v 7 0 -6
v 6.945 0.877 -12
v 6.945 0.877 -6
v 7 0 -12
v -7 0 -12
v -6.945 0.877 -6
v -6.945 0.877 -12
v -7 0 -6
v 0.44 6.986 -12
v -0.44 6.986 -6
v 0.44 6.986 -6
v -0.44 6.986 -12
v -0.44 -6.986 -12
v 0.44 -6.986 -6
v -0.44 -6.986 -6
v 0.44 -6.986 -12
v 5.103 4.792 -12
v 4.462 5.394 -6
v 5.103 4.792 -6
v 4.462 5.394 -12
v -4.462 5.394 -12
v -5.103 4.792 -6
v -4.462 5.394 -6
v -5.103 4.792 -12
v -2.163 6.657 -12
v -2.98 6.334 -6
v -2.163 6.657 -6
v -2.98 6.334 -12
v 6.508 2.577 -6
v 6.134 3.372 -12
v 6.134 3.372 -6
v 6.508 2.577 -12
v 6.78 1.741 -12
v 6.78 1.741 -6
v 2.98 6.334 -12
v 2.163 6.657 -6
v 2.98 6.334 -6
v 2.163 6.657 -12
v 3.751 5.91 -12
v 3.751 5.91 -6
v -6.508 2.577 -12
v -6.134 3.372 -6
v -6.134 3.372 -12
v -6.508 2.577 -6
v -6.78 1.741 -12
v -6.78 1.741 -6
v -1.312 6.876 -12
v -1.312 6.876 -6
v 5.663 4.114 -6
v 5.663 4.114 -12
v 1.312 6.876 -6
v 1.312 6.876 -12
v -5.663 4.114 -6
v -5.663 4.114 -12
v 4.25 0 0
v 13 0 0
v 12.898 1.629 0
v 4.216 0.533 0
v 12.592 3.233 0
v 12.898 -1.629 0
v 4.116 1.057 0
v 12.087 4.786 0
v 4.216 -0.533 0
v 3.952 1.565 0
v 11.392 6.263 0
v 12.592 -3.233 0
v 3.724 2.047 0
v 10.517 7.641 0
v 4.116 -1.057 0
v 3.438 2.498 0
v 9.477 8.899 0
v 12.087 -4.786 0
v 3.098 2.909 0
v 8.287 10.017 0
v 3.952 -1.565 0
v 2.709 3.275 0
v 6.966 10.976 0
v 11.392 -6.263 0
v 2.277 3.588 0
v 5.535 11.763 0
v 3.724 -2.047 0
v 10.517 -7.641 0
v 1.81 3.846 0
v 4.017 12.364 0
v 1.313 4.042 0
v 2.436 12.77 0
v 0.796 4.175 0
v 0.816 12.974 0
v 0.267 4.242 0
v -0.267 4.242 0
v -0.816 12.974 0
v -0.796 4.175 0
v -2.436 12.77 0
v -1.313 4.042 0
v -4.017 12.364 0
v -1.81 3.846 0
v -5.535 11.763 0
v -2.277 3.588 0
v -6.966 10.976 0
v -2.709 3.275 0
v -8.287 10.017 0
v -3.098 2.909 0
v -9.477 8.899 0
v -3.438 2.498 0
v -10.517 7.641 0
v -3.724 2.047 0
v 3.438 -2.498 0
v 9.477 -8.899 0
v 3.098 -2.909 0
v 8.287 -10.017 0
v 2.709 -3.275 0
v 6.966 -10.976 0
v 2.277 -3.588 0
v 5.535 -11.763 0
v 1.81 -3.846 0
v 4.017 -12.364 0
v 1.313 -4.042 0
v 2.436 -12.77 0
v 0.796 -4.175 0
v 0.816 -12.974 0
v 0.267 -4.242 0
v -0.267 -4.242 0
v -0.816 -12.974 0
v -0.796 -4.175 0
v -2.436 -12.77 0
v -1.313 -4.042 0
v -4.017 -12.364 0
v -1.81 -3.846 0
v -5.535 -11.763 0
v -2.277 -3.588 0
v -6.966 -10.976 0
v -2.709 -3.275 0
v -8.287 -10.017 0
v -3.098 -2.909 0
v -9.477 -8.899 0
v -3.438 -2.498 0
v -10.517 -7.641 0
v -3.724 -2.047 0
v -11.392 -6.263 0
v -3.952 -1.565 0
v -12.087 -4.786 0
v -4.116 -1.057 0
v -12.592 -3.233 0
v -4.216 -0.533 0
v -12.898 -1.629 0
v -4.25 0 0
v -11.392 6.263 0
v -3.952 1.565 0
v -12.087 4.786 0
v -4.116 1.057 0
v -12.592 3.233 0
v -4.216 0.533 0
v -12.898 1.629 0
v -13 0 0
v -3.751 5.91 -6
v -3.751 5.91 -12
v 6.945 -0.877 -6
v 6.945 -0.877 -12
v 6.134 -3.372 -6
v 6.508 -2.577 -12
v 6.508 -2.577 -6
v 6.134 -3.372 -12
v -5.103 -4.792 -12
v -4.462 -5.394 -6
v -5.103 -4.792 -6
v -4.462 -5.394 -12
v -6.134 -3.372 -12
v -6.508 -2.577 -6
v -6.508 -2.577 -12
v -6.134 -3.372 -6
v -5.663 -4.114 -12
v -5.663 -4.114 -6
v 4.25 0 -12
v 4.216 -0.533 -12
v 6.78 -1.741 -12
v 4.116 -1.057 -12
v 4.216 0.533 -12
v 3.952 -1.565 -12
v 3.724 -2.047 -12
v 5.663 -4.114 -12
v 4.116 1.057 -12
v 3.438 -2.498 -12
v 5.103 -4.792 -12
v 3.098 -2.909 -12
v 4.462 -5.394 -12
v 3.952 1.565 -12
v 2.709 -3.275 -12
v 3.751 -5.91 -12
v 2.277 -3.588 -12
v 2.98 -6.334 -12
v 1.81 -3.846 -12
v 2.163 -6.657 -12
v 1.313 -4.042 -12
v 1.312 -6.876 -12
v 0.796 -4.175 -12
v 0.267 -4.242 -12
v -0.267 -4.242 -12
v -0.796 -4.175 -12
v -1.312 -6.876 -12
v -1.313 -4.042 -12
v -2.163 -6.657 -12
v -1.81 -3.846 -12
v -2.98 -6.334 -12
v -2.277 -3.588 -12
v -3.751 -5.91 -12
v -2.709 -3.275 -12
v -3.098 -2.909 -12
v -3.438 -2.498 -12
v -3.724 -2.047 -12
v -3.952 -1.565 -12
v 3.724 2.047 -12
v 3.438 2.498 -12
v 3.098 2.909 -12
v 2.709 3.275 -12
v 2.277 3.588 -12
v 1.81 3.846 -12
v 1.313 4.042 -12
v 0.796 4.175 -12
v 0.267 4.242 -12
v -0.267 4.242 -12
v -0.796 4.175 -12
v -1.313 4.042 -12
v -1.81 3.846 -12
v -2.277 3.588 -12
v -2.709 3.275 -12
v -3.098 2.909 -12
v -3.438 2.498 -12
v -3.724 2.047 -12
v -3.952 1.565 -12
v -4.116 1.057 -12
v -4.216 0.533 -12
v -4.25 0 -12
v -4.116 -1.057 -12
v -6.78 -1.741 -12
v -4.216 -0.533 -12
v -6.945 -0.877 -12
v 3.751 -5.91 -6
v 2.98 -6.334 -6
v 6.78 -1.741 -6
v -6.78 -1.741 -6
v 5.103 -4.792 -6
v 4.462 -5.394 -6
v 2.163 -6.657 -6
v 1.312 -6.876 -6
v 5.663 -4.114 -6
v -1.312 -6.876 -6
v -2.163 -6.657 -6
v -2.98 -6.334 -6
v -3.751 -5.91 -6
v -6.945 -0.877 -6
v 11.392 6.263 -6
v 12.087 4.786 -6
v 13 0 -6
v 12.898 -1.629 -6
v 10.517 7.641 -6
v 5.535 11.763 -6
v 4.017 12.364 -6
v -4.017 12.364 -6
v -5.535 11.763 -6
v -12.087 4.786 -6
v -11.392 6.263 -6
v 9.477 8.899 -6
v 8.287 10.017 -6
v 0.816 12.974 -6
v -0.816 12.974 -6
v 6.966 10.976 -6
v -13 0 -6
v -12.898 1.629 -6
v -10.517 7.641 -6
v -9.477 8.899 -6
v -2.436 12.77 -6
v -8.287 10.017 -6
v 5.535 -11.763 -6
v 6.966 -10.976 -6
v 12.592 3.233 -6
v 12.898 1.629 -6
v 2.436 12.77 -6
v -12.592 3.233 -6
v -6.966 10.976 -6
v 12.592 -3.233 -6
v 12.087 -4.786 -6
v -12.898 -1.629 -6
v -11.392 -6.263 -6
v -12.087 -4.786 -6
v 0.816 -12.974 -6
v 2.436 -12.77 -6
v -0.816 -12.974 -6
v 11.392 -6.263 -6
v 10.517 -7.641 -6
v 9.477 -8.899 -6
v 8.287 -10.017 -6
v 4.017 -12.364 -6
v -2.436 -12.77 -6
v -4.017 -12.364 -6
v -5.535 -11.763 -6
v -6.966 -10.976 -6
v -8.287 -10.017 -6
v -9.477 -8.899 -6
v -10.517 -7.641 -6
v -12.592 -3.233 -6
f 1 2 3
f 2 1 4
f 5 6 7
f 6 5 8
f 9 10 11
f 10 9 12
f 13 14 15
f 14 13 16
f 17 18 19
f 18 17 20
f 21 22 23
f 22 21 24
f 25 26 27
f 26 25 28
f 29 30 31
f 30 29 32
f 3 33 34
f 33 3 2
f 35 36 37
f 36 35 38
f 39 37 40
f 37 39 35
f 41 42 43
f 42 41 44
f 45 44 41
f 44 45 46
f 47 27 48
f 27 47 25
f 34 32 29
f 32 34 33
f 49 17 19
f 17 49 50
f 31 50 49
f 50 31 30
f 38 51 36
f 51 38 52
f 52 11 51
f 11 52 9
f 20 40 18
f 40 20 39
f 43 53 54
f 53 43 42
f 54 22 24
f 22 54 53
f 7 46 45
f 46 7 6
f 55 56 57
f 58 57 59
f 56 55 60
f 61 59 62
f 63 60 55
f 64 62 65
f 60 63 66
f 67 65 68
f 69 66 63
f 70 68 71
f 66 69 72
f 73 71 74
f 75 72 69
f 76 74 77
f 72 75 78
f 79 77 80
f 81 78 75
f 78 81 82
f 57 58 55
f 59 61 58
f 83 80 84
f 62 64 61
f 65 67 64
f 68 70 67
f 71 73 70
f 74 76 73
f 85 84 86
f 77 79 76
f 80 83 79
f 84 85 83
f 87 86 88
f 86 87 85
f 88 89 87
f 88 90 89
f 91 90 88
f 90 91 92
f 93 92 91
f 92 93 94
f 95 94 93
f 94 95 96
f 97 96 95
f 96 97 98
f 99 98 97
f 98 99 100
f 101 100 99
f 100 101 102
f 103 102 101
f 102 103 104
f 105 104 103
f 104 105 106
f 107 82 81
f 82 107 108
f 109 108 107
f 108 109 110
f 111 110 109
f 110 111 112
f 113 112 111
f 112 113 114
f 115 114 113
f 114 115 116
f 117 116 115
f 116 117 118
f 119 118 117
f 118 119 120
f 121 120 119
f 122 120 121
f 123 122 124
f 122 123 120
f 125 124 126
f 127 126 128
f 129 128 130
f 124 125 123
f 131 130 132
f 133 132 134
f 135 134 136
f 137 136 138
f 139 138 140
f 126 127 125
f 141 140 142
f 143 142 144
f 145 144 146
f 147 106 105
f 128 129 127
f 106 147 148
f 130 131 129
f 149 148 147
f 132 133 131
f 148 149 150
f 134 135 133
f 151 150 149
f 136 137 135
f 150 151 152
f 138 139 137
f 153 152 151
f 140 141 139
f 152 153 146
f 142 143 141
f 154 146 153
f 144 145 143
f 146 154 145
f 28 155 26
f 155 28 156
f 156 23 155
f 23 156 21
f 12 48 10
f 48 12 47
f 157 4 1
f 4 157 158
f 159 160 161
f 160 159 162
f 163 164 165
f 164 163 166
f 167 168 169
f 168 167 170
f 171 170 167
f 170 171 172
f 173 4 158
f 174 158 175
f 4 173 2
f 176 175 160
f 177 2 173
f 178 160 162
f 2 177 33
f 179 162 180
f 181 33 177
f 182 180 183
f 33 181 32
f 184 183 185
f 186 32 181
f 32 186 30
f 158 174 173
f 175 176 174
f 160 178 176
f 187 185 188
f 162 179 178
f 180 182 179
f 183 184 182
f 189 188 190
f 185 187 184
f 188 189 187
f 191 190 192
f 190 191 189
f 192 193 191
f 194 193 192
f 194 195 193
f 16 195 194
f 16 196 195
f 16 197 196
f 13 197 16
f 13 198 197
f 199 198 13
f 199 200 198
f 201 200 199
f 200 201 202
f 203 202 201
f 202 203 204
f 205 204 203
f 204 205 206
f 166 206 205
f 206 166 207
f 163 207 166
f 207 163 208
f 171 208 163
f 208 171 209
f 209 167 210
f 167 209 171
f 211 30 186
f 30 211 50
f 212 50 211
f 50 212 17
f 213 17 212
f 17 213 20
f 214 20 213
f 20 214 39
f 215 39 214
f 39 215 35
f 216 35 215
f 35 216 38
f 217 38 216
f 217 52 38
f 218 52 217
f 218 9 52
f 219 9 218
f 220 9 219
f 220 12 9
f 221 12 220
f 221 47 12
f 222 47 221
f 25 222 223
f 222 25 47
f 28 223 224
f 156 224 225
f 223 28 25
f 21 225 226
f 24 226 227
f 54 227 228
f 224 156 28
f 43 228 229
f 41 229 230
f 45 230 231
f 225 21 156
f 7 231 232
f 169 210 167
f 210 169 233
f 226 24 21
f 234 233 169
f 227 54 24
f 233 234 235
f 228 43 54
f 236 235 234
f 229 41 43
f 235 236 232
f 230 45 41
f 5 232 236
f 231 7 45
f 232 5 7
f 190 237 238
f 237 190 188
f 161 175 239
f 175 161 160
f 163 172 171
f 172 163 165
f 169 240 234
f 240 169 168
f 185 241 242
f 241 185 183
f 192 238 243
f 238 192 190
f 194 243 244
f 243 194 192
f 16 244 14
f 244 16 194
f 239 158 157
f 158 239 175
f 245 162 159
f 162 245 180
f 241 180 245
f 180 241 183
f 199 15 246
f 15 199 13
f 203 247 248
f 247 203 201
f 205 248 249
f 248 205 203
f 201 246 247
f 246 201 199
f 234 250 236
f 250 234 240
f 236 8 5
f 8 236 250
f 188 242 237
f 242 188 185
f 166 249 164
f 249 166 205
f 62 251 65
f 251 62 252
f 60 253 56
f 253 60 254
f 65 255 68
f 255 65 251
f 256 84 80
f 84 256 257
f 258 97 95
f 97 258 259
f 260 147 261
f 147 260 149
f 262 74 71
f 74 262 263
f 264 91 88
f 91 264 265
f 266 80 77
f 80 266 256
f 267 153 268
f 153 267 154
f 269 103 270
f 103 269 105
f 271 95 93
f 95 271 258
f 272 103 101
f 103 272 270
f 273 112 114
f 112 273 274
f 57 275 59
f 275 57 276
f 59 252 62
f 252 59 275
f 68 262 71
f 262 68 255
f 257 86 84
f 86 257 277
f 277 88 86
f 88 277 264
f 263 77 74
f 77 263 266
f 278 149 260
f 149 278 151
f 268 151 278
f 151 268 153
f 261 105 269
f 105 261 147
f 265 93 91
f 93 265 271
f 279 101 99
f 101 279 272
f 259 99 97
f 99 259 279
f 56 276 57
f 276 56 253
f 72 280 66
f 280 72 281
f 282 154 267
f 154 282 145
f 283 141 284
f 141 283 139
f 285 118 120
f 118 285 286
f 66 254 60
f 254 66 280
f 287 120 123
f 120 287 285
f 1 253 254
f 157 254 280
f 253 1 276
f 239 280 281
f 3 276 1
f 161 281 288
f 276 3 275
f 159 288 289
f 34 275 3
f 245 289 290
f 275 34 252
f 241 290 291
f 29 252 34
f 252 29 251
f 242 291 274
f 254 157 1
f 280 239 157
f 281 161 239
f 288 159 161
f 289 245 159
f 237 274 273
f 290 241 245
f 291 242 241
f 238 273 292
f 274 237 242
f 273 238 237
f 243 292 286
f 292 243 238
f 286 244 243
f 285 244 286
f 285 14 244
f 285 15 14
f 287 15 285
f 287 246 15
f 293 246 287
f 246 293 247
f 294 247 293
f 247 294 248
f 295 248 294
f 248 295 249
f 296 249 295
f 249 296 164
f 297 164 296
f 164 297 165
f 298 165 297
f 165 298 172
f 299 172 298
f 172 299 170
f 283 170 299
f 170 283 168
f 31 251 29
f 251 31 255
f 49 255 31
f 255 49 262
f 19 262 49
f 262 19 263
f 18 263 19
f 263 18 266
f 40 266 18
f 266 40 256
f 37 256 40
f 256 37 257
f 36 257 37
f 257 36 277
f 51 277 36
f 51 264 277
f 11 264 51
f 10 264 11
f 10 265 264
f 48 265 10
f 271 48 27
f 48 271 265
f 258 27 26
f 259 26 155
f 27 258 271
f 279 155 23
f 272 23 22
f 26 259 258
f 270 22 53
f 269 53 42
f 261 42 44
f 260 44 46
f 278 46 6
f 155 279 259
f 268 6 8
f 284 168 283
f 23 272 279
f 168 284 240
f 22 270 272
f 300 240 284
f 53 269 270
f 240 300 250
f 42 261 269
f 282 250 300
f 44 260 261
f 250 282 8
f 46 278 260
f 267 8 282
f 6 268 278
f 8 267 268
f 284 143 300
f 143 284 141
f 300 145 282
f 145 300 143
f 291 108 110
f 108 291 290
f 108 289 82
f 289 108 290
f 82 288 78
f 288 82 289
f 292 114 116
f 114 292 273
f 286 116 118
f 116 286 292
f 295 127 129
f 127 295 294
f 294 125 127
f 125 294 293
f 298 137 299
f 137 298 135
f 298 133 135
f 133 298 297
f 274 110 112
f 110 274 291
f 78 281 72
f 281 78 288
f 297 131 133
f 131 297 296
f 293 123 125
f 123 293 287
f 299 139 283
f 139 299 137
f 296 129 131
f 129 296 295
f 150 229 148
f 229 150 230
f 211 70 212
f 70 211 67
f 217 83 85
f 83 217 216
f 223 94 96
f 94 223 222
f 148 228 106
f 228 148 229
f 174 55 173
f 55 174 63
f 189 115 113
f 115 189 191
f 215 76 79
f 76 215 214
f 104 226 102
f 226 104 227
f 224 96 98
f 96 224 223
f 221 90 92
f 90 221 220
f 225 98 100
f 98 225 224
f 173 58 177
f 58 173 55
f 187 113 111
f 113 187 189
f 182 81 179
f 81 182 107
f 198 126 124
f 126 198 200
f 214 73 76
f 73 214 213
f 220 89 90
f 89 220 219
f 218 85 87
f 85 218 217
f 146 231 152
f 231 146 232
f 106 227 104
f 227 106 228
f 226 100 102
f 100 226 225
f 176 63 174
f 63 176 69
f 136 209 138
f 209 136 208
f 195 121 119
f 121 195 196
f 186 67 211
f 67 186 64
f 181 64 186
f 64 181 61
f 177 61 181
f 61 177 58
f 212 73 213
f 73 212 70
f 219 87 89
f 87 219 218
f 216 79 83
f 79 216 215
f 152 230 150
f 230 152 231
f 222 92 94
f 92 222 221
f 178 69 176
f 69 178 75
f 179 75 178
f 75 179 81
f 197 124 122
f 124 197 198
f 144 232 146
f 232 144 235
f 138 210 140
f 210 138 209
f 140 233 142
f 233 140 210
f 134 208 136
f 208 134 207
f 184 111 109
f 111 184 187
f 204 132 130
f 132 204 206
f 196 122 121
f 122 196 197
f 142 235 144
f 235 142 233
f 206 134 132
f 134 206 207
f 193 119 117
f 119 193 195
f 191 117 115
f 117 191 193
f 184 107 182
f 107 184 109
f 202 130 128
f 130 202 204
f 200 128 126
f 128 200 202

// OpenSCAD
$fn = 50;


difference() {
	union() {
		translate(v = [0, 0, -12.0000000000]) {
			cylinder(h = 12, r = 7);
		}
		translate(v = [0, 0, -6.0000000000]) {
			cylinder(h = 6, r = 13);
		}
	}
	union() {
		#translate(v = [0, 0, -100.0000000000]) {
			cylinder(h = 200, r = 4.2500000000);
		}
	}
}
